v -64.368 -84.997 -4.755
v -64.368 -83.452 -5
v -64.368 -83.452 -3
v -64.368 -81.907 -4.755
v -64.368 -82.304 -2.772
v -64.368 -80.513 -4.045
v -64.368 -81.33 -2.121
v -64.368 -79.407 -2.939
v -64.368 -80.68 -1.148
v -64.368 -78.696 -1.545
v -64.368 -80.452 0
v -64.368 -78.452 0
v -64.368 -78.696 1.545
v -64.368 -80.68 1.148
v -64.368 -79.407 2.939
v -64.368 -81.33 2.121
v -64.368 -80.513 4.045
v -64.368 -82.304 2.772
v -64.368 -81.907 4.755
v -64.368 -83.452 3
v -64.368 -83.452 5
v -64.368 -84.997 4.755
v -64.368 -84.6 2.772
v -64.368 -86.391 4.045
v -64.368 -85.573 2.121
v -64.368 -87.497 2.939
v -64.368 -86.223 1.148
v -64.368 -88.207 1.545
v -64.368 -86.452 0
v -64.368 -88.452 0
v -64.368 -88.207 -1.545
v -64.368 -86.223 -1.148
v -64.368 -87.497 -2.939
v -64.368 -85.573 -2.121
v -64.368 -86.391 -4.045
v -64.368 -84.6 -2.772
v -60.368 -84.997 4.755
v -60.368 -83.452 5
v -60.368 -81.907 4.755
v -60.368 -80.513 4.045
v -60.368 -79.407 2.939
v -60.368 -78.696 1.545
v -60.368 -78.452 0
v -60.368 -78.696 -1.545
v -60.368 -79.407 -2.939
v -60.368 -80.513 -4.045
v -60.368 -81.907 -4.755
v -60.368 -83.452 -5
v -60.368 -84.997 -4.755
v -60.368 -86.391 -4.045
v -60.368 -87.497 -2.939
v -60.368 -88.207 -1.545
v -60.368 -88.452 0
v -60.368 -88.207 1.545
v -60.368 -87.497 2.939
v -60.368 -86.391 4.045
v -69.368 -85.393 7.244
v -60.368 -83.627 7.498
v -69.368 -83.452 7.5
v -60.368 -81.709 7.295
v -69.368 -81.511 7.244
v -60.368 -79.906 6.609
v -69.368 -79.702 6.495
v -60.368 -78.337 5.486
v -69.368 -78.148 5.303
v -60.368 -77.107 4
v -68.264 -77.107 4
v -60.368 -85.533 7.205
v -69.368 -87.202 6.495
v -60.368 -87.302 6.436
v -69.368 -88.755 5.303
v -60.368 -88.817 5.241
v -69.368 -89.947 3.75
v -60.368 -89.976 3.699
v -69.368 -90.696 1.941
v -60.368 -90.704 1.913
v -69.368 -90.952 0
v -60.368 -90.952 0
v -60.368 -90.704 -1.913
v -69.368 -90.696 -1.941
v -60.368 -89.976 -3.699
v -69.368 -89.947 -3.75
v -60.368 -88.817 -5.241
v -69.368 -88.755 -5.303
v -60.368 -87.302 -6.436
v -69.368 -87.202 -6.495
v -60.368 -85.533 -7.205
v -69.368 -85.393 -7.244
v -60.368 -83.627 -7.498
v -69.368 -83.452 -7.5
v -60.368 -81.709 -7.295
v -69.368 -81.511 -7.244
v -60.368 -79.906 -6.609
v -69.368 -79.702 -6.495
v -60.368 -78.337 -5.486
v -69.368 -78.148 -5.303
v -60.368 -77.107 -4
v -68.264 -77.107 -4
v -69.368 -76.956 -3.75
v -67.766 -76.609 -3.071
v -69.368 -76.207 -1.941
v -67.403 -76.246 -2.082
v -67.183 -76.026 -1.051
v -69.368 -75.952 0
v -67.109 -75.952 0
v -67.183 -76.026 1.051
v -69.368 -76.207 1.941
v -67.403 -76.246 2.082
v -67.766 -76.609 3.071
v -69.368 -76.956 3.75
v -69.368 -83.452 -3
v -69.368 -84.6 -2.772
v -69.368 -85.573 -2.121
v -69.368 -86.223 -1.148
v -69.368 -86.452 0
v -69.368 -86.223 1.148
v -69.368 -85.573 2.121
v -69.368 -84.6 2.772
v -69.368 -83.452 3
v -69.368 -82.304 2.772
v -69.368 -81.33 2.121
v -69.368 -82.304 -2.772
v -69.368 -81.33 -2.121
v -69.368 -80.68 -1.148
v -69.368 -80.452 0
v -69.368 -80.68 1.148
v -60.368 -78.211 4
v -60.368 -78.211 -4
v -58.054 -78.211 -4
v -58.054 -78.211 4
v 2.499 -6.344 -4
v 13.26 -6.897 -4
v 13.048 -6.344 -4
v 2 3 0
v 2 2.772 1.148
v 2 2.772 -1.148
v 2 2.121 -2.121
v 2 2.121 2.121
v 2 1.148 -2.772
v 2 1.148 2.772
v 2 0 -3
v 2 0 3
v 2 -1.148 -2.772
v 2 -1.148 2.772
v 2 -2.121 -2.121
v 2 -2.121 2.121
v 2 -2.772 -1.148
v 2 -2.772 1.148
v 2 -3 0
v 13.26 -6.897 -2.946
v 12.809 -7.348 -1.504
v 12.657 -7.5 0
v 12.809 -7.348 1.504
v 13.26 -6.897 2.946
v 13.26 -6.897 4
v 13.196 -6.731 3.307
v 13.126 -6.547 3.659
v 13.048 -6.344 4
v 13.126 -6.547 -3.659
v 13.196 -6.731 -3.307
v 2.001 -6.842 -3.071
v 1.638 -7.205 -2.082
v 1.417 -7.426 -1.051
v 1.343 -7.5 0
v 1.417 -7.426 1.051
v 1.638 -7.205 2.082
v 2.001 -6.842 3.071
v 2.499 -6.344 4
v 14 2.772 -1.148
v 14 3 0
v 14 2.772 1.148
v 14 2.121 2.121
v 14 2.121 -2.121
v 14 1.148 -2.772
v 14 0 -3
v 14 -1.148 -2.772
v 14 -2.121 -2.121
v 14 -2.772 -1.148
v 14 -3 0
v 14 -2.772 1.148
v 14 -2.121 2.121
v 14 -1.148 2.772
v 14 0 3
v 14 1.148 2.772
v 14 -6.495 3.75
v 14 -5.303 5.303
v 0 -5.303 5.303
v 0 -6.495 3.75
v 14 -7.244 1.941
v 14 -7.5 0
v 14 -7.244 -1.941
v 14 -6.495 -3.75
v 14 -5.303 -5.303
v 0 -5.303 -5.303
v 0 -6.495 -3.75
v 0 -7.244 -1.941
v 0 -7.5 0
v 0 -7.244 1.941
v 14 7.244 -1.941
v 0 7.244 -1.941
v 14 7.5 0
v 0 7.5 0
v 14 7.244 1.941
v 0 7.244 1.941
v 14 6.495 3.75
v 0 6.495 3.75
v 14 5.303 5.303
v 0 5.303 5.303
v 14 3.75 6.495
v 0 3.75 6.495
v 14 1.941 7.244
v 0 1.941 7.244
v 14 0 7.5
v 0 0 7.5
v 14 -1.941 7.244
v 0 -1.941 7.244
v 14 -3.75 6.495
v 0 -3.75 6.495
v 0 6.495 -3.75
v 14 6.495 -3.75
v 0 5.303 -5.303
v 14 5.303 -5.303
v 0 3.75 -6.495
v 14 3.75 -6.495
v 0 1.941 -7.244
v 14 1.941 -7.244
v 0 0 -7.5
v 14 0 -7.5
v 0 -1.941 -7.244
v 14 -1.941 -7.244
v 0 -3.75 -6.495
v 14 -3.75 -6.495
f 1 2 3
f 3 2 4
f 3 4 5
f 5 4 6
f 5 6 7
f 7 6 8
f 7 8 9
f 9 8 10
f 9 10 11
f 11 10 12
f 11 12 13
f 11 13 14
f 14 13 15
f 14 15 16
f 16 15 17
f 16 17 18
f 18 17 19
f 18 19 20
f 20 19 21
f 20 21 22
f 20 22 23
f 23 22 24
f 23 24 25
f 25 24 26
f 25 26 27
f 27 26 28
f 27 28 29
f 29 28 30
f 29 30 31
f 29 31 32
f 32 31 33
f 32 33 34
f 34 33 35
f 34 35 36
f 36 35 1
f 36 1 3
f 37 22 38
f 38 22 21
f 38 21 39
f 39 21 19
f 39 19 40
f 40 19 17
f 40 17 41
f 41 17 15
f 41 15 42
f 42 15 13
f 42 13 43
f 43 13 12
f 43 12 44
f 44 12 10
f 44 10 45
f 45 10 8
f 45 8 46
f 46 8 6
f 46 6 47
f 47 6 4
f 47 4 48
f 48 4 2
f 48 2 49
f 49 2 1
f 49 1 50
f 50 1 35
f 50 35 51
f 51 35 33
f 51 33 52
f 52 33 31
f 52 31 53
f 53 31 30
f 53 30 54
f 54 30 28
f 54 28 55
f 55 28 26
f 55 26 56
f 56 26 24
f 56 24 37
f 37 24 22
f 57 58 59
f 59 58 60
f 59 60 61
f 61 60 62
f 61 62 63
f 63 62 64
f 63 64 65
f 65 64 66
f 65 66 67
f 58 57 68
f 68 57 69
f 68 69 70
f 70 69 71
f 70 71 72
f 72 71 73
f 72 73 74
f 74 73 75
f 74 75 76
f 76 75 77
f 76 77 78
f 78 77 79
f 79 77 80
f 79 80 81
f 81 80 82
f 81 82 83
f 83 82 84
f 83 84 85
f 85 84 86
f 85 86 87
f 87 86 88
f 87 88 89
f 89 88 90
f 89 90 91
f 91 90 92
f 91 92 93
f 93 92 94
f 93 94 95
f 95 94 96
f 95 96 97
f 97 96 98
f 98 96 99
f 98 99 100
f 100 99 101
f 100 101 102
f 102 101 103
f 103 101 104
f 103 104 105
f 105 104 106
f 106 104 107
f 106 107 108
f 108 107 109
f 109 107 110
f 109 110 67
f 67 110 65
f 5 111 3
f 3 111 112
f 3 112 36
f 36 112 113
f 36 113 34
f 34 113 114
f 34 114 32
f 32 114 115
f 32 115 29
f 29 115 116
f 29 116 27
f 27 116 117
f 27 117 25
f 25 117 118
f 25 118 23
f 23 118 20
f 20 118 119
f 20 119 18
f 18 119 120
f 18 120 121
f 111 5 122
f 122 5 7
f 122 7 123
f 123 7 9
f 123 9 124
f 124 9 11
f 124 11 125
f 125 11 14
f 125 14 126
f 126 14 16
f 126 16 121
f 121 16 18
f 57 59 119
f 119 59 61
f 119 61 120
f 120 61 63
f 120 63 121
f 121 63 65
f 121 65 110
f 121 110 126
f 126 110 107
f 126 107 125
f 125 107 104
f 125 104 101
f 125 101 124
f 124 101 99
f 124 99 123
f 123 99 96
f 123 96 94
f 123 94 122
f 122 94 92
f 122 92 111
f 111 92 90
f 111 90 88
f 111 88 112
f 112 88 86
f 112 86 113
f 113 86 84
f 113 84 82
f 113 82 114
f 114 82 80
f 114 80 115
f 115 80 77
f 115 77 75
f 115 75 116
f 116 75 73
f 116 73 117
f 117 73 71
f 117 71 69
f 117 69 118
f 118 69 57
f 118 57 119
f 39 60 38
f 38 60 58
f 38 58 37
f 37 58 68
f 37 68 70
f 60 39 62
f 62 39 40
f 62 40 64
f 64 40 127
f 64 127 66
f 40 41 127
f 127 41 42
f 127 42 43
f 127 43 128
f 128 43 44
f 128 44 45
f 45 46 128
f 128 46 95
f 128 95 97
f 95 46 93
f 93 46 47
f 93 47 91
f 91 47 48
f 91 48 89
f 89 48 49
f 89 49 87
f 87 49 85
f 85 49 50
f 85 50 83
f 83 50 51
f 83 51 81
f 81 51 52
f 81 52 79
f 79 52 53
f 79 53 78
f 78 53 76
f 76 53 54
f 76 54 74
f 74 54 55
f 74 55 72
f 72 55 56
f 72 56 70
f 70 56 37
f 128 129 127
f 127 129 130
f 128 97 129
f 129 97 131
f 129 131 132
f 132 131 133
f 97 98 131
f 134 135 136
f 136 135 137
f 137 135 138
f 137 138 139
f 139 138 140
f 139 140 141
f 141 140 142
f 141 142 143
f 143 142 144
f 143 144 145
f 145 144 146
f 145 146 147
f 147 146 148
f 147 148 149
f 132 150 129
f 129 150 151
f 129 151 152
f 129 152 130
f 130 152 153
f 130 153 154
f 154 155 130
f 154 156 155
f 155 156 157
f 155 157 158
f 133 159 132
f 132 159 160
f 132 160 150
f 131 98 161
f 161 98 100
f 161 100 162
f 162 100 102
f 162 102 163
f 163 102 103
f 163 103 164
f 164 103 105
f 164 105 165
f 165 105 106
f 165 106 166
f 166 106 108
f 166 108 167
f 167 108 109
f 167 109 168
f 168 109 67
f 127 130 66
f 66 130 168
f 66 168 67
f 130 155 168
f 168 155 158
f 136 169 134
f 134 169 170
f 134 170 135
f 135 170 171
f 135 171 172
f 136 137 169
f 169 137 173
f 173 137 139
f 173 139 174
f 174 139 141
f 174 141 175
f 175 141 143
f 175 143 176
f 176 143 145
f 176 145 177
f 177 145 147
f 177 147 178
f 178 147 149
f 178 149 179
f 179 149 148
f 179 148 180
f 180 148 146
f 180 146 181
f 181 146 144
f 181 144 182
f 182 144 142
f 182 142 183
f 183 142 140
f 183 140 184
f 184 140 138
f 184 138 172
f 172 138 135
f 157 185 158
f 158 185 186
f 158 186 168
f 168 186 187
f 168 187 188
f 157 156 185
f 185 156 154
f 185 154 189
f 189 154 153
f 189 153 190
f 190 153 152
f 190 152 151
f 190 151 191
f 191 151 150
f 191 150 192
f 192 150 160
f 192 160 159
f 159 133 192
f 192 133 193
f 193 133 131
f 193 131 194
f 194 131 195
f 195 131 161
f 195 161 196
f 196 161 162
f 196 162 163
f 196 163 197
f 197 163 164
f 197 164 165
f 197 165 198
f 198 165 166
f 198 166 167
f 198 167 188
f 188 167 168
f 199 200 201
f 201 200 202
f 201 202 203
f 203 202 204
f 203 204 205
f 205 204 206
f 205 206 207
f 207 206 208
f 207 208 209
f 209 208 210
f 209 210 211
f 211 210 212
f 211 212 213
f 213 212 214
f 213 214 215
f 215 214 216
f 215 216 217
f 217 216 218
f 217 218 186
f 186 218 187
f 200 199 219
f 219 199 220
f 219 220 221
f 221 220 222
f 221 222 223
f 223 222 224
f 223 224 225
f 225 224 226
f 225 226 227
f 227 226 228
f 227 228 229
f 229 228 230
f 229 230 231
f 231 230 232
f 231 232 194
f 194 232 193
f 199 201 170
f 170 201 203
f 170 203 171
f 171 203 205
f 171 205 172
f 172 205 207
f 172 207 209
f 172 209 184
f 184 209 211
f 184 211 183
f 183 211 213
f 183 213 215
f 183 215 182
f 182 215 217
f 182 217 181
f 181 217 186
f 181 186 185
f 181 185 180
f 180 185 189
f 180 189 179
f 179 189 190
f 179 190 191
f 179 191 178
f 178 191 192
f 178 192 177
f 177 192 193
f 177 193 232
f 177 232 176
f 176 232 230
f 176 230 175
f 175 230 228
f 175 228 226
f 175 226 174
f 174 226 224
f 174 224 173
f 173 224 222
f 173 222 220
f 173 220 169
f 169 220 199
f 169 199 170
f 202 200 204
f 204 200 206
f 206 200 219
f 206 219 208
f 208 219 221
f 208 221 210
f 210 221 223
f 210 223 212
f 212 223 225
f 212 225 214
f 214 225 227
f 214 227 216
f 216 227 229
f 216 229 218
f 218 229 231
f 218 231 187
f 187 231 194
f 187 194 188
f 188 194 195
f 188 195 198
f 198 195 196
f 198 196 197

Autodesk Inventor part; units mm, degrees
ref_plane "YZ Plane" through (0, 0, 0) normal (1, 0, 0) x (0, 1, 0)
ref_plane "XZ Plane" through (0, 0, 0) normal (0, 1, 0) x (-1, 0, 0)
sketch "Sketch1" plane through (0, 0, 0) normal (1, 0, 0) x (0, 1, 0)
  circle A0 centre (0, 0) radius 3
  circle A1 centre (0, 0) radius 7.5
  dimension "d0" = 6
  dimension "d1" = 15
extrude "Extrusion1" add sketch "Sketch1" along normal blind 14
sketch "Sketch2" plane through (0, 0, 0) normal (0, 0, 1) x (1, 0, 0)
  line L0 (14, -7.5) -> (14, 7.5) projected
  line L1 (0, -7.5) -> (0, 7.5) projected
  line L2 (0, -7.5) -> (14, -7.5) projected
  line L3 (7, -7.5) -> (-63.7107, -78.2107)
  line L4 (13.2599, -6.897) -> (-46.7401, -66.897)
  line L5 (3.7119, -5.1312) -> (-52.397, -61.2401)
  line L6 (-52.397, -61.2401) -> (-58.0538, -66.897)
  line L7 (-63.7107, -78.2107) -> (-58.0538, -78.2107)
  line L8 (-63.7107, -78.2107) -> (-69.3675, -78.2107)
  line L9 (-58.0538, -78.2107) -> (-46.7401, -66.897)
  line L10 (-58.0538, -66.897) -> (-69.3675, -78.2107)
  line L11 (3.7119, -5.1312) -> (12.583, -5.1312)
  line L12 (13.2599, -6.897) -> (12.583, -5.1312)
  point P0 (0, 0)
  point P1 (-58.0538, -78.2107)
  point P2 (1.3431, -7.5)
  point P3 (12.6569, -7.5)
  dimension "d4" = 100
  dimension "d5" = 45
  dimension "d6" = 4
  dimension "d7" = 4
  dimension "d10" = 8.871
  dimension "d12" = 60
extrude "Extrusion2" add sketch "Sketch2" along normal mid plane 8
extrude "Extrusion3" add sketch "Sketch1" along normal blind 2 contours A0
ref_plane "Work Plane1" through (-69.3675, -78.2107, 0) normal (-1, 0, 0) x (0, 0, 1)
sketch "Sketch3" plane through (-69.3675, -78.2107, 0) normal (-1, 0, 0) x (0, 0, 1)
  arc A0 (-4, 71.8664) -> (4, 71.8664) centre (0, 78.2107) ccw projected
  line L0 (-4, 0) -> (-4, 71.8664) projected
  line L1 (-4, 0) -> (4, 0) projected
  line L2 (4, 71.8664) -> (4, 0) projected
  circle A1 centre (0, -5.241) radius 7.5
  circle A2 centre (0, -5.241) radius 3
  line L3 (0, -32.4313) -> (0, 105.401) projected
  point P0 (0, 0)
  dimension "d15" = 15
  dimension "d16" = 6
  dimension "d17" = 5.241
extrude "Extrusion4" add sketch "Sketch3" against normal blind 9 contours A1 L3 L1 L0 | L0 L1 L3 A2 A1 | A1 L2 L1 L3 | L3 A2 L1 L2 A1
sketch "Sketch4" plane through (-60.3675, -78.2107, 0) normal (1, 0, 0) x (0, 0, -1)
  circle A0 centre (0, -5.241) radius 3 projected
  circle A1 centre (0, -5.241) radius 5
  point P0 (0, 78.2107)
  dimension "d20" = 10
extrude "Extrusion5" cut sketch "Sketch4" along normal blind 9 and the other way blind 4
properties part number "Conector"
